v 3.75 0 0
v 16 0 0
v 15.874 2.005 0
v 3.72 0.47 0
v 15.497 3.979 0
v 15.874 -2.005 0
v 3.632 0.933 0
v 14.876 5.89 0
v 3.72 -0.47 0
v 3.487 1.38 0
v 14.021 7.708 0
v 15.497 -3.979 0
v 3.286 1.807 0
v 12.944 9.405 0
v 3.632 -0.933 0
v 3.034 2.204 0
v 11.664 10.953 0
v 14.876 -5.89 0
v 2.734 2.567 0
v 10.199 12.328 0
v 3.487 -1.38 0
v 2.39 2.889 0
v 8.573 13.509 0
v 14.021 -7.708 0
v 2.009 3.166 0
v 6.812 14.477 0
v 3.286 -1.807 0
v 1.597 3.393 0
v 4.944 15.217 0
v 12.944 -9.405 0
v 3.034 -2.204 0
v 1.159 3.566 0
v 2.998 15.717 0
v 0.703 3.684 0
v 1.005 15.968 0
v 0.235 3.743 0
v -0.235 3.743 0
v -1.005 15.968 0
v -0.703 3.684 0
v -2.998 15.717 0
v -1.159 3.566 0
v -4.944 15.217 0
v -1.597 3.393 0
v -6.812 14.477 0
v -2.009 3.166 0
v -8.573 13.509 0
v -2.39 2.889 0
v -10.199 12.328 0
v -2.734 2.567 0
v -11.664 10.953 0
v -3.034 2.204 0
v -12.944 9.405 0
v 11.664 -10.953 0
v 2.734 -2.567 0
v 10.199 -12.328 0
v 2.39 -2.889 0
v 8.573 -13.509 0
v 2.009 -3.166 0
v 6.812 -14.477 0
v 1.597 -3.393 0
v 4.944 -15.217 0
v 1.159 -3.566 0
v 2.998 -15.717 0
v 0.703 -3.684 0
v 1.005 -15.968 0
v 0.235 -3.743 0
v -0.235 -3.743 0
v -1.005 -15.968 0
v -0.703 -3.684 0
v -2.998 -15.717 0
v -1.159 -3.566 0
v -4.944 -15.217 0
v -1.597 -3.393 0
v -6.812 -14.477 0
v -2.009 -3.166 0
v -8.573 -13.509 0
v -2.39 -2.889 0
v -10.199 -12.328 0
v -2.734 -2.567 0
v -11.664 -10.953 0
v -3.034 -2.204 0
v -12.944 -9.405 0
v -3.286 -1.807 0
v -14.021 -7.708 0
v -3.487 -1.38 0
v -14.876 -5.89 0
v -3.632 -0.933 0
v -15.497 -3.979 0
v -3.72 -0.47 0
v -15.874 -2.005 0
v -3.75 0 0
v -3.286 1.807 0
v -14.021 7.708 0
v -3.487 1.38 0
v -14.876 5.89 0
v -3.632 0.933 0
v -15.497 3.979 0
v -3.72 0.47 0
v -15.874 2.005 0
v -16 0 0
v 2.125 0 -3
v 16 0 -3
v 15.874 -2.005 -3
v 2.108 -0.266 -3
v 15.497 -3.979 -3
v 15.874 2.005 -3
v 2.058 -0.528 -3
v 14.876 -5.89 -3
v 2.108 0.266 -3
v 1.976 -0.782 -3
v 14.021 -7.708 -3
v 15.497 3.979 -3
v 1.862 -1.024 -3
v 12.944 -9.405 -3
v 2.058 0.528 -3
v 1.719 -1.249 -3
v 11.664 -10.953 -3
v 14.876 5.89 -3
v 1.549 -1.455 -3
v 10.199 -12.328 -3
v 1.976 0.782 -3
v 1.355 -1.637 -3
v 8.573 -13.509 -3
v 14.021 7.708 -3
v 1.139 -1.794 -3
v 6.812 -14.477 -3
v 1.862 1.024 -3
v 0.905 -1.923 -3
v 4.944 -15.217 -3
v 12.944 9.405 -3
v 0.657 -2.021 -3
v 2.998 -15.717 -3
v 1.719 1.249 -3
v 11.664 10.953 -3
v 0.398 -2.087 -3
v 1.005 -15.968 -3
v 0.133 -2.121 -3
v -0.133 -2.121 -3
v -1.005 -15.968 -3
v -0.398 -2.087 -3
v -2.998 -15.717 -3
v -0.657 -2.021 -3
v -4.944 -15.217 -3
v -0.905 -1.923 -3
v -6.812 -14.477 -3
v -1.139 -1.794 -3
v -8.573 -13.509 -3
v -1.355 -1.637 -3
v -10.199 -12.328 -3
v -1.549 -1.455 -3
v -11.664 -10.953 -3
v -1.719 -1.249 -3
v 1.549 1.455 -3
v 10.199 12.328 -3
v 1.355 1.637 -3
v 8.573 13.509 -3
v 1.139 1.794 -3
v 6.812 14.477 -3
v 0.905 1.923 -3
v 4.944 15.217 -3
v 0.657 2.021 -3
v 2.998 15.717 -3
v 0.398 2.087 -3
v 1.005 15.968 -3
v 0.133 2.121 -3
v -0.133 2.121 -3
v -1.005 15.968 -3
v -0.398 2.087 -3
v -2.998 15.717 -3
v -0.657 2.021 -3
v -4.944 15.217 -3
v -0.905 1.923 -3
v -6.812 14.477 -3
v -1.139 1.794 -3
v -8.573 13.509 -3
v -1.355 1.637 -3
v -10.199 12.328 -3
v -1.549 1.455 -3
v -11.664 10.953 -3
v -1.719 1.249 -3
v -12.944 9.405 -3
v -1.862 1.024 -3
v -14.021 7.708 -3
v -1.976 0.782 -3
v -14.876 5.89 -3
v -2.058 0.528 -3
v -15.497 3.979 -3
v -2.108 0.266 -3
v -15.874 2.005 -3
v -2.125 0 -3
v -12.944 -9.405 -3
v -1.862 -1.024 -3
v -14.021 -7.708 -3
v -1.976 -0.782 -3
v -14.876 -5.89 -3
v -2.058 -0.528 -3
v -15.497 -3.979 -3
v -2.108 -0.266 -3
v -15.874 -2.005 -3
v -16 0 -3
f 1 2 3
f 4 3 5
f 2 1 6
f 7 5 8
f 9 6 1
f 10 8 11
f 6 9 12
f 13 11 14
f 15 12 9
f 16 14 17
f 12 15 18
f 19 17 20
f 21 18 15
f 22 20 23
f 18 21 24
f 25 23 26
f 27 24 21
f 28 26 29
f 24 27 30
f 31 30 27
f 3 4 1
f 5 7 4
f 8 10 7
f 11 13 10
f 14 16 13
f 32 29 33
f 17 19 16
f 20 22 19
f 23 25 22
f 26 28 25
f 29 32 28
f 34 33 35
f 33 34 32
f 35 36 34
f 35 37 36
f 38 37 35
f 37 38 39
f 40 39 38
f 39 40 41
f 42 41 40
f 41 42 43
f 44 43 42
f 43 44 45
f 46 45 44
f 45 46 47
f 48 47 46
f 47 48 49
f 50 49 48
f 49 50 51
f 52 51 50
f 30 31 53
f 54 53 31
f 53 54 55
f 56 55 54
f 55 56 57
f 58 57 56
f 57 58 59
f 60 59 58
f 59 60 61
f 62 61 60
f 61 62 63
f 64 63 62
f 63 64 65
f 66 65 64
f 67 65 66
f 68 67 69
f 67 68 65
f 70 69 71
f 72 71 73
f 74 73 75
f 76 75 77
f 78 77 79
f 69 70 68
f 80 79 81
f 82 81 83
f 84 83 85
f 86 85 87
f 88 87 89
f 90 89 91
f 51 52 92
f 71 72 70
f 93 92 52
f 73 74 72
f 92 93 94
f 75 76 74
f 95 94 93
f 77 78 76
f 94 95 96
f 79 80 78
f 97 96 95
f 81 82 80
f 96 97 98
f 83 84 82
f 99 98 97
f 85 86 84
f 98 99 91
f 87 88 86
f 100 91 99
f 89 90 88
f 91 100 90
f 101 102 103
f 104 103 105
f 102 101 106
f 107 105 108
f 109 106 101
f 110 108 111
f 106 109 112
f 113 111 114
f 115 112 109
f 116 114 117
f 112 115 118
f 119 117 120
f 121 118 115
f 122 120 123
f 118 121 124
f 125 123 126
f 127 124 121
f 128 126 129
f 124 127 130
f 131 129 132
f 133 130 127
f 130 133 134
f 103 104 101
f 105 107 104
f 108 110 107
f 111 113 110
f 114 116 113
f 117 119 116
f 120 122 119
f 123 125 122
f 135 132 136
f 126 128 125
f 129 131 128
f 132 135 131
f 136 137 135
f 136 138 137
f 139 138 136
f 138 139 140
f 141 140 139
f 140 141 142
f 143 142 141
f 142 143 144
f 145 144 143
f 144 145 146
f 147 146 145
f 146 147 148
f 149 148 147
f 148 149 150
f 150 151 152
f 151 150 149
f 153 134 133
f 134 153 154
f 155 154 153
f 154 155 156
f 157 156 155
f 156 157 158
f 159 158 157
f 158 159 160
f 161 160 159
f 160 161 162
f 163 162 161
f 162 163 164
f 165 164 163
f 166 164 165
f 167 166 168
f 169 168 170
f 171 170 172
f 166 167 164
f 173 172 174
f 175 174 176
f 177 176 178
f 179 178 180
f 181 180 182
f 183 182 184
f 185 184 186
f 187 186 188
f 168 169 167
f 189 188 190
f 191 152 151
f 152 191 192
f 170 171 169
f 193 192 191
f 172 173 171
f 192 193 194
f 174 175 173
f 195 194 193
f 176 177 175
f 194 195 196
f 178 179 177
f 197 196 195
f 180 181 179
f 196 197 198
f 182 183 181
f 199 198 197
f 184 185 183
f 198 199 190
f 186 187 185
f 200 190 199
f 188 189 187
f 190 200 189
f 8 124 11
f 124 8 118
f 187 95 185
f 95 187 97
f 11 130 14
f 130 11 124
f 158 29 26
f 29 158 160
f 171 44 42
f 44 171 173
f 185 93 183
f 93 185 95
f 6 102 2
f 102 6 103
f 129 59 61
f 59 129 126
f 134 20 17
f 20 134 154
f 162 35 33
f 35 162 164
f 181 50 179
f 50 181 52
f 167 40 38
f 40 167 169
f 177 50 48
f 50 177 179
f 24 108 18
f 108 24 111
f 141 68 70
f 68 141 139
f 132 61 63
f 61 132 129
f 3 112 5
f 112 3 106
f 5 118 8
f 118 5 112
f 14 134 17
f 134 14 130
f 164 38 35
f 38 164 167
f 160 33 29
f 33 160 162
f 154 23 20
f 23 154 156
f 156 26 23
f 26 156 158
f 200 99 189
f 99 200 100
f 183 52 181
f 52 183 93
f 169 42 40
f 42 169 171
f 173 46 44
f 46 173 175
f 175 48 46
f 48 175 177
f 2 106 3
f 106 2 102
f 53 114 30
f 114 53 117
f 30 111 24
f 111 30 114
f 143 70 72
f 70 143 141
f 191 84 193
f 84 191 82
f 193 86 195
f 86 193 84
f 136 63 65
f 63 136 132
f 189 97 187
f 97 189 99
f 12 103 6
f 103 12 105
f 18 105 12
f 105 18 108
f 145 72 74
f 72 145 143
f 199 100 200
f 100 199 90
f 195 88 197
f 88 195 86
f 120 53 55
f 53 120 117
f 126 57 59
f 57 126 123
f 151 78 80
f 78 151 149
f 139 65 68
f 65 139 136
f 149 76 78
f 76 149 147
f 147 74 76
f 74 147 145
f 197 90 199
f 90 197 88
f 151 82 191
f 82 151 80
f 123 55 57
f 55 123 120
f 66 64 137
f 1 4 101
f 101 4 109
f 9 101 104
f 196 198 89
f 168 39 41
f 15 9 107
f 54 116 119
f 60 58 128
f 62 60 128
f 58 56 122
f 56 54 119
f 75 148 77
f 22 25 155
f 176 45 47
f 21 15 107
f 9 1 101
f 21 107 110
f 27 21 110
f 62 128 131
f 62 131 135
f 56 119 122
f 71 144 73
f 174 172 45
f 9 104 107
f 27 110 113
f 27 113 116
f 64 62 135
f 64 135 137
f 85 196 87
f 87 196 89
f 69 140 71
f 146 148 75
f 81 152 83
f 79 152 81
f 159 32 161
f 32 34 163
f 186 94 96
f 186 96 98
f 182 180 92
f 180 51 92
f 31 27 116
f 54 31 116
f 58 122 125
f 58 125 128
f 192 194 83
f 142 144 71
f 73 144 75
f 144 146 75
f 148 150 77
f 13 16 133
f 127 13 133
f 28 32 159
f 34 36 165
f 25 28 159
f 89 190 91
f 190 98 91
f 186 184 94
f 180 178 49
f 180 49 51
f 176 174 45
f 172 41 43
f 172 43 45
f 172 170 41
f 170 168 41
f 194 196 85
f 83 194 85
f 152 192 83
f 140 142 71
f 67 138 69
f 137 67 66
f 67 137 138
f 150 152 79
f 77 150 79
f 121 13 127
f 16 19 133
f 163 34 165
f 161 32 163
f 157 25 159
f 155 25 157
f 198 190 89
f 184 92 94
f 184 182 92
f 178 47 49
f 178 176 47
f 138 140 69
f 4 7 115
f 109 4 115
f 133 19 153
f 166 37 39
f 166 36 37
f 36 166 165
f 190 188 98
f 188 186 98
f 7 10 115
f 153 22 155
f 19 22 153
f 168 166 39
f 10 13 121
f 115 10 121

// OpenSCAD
$fn = 50;


difference() {
	union() {
		translate(v = [0, 0, -3.0000000000]) {
			cylinder(h = 3, r = 7.0000000000);
		}
		translate(v = [0, 0, -3.0000000000]) {
			cylinder(h = 3, r = 16.0000000000);
		}
	}
	union() {
		translate(v = [0, 0, 0]) {
			rotate(a = [0, 0, 0]) {
				difference() {
					union() {
						#translate(v = [0, 0, -3.0000000000]) {
							cylinder(h = 3, r = 2.0000000000);
						}
						#translate(v = [0, 0, -3]) {
							cylinder(h = 3, r1 = 2.1250000000, r2 = 3.7500000000);
						}
						#translate(v = [0, 0, -3.0000000000]) {
							cylinder(h = 3, r = 2.1250000000);
						}
						#translate(v = [0, 0, -3.0000000000]) {
							cylinder(h = 3, r = 2.0000000000);
						}
					}
					union();
				}
			}
		}
	}
}
